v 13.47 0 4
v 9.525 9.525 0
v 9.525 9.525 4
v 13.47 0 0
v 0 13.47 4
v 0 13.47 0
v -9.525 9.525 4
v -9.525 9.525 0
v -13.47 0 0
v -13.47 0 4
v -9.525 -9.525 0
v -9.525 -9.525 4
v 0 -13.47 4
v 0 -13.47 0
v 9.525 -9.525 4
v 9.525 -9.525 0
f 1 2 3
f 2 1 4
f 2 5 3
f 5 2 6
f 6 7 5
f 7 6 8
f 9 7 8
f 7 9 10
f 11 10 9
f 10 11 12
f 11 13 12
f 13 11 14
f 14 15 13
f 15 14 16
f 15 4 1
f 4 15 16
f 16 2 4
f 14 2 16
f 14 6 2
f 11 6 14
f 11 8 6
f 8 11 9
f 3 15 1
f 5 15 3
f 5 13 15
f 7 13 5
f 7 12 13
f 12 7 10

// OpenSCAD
SIDES=8;

$fn=SIDES; // make hexagon

HEIGTH= 4;
DEGREES = 360/ SIDES;

FLATSIDE = 3/4 * 25.4; 
ACROSS_CORNER = FLATSIDE / cos(DEGREES);

cylinder(h = HEIGTH, d= ACROSS_CORNER);
